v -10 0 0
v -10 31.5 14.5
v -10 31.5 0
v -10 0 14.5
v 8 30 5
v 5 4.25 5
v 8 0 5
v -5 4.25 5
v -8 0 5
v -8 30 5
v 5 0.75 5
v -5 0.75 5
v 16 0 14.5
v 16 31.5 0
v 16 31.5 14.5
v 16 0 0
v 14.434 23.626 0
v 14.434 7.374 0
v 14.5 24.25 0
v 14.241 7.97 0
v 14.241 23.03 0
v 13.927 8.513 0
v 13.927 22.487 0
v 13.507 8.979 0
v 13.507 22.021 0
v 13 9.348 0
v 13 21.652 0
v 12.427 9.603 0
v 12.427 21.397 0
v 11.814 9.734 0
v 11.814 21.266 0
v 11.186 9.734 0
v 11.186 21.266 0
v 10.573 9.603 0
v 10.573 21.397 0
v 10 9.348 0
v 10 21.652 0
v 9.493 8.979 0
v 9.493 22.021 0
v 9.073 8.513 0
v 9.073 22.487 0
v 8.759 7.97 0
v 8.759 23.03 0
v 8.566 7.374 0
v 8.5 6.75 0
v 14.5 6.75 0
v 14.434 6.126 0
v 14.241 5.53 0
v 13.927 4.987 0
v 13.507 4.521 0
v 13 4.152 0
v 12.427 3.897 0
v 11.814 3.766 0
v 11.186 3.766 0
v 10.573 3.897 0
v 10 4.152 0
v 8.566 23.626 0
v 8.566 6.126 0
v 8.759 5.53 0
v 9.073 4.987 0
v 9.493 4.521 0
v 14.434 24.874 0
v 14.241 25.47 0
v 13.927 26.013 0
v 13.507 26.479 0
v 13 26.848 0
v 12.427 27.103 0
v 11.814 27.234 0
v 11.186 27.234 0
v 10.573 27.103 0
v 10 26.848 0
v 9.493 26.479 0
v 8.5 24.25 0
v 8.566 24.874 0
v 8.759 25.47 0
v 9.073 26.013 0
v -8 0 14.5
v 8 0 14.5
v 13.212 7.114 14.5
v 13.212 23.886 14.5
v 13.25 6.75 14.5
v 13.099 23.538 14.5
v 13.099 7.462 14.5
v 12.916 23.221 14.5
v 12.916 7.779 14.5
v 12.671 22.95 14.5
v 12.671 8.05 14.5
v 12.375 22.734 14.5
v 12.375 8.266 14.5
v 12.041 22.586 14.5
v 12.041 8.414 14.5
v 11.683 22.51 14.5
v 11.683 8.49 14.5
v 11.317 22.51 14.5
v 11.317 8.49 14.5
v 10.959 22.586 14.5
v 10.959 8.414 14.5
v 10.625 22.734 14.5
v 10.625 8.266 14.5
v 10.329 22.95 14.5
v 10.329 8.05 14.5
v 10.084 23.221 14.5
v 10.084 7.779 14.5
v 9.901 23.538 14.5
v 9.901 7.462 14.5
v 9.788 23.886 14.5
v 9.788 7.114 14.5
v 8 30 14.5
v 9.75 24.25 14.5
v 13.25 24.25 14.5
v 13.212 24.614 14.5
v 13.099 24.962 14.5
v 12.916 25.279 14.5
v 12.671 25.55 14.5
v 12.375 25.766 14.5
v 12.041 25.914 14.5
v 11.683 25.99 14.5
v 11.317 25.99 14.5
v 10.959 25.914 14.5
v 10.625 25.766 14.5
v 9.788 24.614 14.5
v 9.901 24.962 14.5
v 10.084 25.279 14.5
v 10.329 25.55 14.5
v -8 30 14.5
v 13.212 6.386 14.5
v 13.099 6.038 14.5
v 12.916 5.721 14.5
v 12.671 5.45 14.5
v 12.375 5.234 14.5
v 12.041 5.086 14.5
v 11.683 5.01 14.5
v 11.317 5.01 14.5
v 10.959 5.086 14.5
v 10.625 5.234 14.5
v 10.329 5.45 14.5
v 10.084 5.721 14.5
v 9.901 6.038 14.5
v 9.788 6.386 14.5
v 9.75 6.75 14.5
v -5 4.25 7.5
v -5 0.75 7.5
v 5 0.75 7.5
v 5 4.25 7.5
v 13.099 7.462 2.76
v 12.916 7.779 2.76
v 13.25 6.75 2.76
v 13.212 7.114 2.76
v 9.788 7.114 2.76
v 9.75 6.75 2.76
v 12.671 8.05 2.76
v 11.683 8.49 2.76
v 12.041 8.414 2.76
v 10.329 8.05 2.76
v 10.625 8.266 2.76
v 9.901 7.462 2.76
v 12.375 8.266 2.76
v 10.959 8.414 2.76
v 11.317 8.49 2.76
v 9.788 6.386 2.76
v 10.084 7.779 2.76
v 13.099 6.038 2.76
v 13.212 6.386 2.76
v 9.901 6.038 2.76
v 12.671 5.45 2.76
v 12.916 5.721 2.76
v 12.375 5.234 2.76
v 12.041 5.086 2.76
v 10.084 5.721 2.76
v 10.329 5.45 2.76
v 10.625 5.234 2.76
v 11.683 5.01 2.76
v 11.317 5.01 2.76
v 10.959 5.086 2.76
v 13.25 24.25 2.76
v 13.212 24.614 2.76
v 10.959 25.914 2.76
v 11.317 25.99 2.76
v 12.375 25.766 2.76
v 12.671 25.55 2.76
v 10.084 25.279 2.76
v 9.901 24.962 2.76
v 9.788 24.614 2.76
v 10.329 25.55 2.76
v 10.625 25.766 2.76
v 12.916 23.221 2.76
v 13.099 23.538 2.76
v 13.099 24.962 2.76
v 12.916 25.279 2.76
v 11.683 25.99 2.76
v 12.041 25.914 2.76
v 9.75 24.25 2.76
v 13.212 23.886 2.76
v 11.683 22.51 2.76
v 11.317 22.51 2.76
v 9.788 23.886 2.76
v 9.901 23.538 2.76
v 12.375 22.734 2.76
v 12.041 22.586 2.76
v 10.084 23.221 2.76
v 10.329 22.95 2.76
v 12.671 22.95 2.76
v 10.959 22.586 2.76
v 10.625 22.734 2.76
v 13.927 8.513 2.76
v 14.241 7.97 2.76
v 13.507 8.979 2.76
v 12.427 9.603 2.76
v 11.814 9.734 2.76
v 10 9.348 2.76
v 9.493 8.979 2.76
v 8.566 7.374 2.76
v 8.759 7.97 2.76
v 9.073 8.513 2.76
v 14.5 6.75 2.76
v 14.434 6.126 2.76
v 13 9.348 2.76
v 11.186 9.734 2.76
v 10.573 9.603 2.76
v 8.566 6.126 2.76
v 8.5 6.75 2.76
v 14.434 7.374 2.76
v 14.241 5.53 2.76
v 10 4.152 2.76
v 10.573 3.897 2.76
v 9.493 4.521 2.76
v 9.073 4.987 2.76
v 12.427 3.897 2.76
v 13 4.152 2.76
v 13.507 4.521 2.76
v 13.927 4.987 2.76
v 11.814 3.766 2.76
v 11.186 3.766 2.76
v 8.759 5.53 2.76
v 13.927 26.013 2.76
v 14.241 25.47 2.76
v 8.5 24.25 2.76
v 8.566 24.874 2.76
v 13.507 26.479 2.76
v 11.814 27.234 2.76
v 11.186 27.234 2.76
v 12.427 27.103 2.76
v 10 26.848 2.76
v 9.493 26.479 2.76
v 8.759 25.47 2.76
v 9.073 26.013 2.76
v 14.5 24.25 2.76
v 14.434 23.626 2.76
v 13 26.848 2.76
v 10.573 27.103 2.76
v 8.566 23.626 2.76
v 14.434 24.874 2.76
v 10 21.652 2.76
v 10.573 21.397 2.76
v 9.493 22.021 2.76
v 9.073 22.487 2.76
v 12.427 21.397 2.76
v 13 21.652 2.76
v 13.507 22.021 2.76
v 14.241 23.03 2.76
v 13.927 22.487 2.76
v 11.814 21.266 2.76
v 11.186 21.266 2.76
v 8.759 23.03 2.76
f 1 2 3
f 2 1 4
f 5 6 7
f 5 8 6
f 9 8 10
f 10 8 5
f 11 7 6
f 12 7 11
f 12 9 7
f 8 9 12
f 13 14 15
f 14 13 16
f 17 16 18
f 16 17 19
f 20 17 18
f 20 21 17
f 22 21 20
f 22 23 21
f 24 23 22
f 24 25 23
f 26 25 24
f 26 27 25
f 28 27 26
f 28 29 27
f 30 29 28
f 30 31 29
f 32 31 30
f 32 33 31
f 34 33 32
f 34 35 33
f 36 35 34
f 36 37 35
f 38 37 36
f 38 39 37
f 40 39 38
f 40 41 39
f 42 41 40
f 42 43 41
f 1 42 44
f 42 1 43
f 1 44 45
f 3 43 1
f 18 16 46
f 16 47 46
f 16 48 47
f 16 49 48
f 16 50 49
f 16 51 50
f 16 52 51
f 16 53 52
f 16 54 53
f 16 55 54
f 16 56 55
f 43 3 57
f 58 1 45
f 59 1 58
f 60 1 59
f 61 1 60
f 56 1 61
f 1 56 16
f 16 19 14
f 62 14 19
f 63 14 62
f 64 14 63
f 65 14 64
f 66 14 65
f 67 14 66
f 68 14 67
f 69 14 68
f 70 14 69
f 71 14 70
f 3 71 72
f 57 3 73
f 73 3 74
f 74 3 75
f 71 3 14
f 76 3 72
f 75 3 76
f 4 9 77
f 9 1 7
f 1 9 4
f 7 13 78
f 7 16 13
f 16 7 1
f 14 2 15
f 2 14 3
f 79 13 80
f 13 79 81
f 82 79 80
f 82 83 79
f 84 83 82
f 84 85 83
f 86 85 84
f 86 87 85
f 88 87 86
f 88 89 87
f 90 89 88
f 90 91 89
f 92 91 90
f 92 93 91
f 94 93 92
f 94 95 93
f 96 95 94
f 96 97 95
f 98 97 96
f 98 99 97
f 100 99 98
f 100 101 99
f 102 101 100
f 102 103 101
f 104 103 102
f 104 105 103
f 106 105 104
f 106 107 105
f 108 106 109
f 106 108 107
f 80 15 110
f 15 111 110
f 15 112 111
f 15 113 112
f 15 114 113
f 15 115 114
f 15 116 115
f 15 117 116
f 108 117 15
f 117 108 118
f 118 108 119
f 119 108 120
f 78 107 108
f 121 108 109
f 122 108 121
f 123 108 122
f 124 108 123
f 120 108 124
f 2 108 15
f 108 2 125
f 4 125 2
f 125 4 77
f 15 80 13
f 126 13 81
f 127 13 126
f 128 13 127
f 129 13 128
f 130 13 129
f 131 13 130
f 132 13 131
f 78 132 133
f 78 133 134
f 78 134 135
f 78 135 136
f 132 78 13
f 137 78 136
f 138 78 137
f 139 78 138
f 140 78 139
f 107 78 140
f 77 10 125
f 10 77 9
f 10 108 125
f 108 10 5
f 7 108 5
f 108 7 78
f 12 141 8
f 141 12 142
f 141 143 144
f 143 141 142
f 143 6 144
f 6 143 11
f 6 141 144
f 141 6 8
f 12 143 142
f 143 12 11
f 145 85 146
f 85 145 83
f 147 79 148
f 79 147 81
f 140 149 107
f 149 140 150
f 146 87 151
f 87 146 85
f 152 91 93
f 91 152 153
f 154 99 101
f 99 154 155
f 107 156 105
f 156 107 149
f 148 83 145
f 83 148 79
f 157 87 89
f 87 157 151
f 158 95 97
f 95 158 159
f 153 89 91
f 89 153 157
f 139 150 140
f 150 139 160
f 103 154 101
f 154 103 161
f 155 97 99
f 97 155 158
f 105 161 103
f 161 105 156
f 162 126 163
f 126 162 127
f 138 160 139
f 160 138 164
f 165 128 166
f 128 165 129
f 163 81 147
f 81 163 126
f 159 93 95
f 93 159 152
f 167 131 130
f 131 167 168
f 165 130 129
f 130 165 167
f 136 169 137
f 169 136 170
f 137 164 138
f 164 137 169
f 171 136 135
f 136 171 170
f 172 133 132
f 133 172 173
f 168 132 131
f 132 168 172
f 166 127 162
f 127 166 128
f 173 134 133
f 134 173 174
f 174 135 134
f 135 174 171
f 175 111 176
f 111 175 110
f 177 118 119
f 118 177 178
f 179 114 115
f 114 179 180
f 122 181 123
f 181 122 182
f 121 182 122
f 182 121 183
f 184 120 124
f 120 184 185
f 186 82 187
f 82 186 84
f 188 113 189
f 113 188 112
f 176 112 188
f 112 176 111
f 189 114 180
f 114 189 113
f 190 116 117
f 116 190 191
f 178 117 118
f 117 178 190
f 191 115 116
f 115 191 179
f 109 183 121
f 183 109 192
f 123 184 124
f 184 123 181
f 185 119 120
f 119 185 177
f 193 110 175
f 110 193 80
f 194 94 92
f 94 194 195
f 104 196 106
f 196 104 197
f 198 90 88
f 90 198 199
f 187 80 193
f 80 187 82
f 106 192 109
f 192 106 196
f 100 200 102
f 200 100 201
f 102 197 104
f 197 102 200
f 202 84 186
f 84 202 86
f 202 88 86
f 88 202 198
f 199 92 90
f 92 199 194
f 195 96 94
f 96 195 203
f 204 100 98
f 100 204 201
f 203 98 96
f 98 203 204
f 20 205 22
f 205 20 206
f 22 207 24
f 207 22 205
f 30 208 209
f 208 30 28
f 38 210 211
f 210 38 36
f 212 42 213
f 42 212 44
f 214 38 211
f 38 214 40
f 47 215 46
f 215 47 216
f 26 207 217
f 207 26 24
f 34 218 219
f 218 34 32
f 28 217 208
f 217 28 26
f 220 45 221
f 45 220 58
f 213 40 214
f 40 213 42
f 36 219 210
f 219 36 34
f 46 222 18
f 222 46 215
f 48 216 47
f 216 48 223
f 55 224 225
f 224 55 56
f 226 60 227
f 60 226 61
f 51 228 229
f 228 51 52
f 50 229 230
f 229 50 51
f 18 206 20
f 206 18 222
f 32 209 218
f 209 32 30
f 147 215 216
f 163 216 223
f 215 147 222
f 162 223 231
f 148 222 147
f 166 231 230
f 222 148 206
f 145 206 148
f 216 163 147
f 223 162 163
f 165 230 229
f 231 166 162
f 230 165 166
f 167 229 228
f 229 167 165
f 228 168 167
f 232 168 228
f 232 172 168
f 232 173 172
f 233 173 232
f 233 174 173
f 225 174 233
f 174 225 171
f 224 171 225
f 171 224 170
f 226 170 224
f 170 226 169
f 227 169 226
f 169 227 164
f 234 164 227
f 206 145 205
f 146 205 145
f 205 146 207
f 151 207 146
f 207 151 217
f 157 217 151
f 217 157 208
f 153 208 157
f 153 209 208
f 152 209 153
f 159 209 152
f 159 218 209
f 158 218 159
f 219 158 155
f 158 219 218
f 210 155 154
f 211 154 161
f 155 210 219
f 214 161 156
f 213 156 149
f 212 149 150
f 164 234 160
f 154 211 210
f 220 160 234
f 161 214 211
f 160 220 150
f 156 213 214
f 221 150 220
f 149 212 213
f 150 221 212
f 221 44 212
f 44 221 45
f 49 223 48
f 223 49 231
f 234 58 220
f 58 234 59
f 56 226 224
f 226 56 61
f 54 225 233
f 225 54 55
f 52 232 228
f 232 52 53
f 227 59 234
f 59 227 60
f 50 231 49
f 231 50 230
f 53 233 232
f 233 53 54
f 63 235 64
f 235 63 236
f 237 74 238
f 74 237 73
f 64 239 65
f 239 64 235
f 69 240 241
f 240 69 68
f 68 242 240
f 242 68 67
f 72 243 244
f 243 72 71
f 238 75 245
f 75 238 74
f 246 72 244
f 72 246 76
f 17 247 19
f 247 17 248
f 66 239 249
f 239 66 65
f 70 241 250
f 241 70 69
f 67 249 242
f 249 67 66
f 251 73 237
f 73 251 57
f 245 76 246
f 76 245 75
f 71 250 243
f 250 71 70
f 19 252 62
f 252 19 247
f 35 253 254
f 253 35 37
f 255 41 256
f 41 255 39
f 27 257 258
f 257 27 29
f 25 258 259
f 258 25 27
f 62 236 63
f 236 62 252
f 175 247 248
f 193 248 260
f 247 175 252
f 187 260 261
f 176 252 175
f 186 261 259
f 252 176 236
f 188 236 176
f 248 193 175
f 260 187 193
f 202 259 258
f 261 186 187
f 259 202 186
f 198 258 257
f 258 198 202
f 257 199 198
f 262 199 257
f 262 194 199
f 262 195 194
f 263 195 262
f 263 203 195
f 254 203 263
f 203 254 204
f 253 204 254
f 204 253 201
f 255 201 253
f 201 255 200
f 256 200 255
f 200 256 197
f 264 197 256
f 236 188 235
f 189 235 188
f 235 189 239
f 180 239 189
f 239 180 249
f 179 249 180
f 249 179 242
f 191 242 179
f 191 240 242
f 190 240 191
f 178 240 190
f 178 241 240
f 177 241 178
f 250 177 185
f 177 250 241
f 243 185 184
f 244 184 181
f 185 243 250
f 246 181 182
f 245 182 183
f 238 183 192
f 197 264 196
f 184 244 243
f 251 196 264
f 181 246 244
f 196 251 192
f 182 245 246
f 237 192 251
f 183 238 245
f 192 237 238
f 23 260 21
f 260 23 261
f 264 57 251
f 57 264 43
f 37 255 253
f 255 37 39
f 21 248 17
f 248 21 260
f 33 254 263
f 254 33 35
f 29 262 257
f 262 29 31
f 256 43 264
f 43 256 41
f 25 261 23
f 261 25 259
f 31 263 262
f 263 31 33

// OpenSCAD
// Project: BigBox v2
// Part:    y_axis_drag_cap
// Author:  Grigori Palamartšuk <grigori.palamarchuk@gmail.com>
// Source:  http://bigbox.lecktor.ee

$e = 0.01;

module body()
{
    cube([26,31.5,5]);
    translate([0,0,5]) cube([2,30,9.5]);
    translate([18,0,5]) cube([8,30,9.5]);
    translate([0,30,5]) cube([26,1.5,9.5]);
    translate([5,0.75,5]) cube([10,3.5,2.5]);
}

module holes()
{
    translate([21.5,6.75,-$e]) cylinder(h=14.5+2*$e,r=1.75,$fn=30);
    translate([21.5,24.25,-$e]) cylinder(h=14.5+2*$e,r=1.75,$fn=30);
    
    translate([21.5,6.75,-$e]) cylinder(h=2.75+2*$e,r=3.0,$fn=30);
    translate([21.5,24.25,-$e]) cylinder(h=2.75+2*$e,r=3.0,$fn=30);
}

translate([-10,0,0])
difference()
{
    body();
    holes();
}
